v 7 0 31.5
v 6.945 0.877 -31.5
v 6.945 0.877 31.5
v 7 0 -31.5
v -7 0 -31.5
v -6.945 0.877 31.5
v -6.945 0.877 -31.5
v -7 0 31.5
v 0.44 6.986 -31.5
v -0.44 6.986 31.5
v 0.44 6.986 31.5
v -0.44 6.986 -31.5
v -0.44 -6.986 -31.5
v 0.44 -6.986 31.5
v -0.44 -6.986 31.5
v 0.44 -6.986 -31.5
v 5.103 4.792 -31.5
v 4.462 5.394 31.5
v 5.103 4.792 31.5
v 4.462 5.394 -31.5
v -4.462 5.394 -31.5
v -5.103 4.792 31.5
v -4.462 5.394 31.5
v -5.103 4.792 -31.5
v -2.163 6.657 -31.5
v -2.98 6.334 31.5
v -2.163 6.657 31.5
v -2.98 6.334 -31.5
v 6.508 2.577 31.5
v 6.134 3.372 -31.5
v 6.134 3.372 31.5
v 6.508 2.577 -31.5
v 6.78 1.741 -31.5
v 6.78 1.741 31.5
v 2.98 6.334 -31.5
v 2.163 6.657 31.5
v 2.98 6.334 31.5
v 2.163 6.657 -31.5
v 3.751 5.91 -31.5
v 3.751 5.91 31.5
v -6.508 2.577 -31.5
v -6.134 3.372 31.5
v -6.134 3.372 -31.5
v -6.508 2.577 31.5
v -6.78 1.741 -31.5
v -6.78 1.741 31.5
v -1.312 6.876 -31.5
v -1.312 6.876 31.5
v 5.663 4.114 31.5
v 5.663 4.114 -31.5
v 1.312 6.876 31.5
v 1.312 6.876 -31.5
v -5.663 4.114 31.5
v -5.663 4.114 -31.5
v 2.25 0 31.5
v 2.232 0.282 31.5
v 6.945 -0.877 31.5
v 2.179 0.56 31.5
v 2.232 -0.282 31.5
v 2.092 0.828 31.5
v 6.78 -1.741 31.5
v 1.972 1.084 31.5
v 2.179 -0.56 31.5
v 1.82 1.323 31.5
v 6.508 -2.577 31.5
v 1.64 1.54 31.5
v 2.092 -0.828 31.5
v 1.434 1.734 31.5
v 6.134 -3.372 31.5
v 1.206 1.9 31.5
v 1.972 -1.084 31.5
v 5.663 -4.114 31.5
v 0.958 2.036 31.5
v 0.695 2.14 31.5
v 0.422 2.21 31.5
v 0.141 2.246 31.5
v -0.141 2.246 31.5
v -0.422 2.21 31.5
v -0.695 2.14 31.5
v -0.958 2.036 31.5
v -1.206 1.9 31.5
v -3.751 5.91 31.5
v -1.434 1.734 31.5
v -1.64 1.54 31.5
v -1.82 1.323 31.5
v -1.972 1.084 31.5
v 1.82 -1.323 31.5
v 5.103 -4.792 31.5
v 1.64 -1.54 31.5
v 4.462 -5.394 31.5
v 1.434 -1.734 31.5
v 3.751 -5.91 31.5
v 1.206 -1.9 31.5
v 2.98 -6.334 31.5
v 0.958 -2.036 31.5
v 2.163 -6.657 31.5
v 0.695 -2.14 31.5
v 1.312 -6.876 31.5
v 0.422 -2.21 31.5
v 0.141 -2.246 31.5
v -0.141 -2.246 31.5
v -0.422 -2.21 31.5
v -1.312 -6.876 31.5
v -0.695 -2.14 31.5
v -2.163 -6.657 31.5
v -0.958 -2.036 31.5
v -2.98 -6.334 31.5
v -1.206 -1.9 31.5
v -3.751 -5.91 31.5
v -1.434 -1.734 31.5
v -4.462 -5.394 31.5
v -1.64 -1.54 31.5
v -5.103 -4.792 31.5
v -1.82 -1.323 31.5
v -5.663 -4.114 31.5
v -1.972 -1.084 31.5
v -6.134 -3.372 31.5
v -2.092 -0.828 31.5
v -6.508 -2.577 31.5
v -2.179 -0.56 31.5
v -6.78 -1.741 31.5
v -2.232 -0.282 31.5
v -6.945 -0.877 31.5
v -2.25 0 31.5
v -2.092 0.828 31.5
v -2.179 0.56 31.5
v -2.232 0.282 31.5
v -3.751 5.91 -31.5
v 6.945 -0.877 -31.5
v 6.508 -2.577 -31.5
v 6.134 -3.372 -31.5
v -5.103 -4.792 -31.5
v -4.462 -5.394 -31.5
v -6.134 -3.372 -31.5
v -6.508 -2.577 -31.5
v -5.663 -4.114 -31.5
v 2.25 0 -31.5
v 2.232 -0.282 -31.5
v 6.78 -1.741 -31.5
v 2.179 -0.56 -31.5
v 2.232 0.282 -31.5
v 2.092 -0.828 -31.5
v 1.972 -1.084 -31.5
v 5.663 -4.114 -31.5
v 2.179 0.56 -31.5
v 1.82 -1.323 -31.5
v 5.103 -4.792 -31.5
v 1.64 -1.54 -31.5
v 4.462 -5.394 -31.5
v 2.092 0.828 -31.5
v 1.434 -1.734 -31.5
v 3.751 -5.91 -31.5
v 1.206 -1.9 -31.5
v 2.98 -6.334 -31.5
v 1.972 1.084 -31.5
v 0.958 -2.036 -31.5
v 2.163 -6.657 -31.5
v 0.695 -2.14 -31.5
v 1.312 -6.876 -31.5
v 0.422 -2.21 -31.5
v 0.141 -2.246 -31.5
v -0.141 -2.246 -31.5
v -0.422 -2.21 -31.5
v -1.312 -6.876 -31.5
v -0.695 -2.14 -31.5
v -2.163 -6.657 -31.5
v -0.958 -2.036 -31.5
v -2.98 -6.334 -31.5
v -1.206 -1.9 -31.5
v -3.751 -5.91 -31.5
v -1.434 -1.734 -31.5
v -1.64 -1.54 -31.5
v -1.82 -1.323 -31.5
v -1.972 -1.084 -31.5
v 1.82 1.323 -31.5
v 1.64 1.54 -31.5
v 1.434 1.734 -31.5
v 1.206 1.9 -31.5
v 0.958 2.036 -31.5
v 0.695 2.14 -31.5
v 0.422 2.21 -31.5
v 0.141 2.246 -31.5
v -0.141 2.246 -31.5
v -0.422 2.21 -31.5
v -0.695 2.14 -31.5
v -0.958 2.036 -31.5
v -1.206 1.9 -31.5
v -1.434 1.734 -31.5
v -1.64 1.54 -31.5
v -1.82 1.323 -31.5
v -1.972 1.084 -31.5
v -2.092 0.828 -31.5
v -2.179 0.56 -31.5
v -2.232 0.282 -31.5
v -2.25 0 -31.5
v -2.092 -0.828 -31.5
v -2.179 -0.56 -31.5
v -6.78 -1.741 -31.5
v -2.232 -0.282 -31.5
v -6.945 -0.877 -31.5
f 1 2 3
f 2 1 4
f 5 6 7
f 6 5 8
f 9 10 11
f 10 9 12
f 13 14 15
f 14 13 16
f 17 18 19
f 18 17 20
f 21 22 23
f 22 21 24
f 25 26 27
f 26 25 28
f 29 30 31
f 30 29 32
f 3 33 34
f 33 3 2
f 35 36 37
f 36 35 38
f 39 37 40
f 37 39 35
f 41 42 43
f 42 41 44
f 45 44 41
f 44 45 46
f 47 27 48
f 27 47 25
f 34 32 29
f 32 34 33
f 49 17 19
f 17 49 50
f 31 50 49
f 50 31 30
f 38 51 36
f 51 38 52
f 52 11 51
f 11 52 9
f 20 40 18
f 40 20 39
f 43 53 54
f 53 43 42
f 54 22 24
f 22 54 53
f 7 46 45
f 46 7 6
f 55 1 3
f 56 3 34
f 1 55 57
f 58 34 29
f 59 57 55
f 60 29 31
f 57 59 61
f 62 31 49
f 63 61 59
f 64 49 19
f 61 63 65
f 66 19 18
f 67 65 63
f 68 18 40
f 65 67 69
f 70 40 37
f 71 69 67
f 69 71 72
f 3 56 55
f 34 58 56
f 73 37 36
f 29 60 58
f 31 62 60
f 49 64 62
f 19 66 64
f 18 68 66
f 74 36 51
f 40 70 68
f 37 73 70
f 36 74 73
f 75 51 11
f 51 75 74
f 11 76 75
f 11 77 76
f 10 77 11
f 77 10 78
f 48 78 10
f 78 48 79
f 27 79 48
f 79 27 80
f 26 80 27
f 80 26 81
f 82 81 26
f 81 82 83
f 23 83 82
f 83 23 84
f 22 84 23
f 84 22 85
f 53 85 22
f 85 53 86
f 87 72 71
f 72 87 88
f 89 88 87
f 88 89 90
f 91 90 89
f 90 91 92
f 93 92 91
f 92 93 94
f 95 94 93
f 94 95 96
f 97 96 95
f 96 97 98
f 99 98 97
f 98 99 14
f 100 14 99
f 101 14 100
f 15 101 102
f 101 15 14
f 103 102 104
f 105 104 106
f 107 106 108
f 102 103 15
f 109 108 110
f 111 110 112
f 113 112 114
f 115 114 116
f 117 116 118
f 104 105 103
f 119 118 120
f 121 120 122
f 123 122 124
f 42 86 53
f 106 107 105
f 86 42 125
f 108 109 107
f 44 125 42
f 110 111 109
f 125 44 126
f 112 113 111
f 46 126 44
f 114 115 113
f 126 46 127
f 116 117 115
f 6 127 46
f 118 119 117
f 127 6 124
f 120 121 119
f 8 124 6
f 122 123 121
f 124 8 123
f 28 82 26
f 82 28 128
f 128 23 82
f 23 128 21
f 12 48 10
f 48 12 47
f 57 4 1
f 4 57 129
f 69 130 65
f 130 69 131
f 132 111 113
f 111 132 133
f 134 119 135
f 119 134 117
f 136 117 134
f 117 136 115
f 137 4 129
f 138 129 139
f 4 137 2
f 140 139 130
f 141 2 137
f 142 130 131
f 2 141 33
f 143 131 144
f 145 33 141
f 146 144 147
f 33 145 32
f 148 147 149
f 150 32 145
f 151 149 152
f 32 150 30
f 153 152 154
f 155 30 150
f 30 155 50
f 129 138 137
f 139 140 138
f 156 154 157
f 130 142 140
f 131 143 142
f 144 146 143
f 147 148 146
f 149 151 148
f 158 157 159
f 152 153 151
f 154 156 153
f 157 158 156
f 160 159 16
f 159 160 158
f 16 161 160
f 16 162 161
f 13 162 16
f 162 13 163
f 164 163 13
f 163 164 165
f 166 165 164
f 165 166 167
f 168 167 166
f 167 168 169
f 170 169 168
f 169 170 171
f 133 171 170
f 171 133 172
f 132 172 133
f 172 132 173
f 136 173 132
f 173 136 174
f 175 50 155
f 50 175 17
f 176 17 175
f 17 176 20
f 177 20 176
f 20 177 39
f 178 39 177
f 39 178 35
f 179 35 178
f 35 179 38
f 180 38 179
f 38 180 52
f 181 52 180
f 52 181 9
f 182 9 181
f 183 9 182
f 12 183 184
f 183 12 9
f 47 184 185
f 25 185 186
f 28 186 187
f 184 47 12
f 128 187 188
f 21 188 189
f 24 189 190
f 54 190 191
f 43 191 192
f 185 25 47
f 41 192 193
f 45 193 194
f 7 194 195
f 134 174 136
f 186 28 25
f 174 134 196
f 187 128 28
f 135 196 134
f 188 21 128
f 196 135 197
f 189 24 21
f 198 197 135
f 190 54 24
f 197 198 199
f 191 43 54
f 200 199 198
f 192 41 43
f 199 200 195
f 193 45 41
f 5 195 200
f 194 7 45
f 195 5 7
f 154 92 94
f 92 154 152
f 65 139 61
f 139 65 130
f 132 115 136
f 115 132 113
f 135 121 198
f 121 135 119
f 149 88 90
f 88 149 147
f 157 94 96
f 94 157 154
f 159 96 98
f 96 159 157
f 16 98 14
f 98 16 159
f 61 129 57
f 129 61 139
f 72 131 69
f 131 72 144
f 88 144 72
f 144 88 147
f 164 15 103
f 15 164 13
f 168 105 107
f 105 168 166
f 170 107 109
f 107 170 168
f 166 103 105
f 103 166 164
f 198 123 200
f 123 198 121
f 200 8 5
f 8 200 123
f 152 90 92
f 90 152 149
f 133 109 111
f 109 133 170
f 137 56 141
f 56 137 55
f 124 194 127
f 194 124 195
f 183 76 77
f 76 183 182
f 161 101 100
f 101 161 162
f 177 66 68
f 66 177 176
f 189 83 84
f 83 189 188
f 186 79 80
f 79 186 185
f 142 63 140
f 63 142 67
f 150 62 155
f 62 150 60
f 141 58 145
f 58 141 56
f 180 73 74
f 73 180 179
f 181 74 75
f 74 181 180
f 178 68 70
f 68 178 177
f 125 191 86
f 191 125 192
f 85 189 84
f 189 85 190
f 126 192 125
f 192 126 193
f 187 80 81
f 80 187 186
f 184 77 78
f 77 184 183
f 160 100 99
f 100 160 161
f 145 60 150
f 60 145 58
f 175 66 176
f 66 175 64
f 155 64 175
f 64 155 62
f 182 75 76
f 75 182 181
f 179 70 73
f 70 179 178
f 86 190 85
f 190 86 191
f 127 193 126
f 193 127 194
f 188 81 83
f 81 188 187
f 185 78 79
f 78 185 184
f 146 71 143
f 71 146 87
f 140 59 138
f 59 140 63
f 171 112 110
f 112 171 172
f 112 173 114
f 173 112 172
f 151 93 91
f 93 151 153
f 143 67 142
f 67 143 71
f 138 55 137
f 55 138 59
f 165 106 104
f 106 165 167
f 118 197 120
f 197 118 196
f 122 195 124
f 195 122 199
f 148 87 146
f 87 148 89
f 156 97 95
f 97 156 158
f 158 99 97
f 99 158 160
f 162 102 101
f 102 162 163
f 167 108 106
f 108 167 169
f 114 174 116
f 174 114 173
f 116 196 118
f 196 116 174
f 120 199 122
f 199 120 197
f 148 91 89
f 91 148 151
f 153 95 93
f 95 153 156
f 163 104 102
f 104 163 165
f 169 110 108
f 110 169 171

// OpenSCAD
$fn = 50;


difference() {
	union() {
		translate(v = [0, 0, -31.5000000000]) {
			cylinder(h = 63, r = 7.0000000000);
		}
	}
	union() {
		translate(v = [0, 0, -100.0000000000]) {
			cylinder(h = 200, r = 2.2500000000);
		}
	}
}
